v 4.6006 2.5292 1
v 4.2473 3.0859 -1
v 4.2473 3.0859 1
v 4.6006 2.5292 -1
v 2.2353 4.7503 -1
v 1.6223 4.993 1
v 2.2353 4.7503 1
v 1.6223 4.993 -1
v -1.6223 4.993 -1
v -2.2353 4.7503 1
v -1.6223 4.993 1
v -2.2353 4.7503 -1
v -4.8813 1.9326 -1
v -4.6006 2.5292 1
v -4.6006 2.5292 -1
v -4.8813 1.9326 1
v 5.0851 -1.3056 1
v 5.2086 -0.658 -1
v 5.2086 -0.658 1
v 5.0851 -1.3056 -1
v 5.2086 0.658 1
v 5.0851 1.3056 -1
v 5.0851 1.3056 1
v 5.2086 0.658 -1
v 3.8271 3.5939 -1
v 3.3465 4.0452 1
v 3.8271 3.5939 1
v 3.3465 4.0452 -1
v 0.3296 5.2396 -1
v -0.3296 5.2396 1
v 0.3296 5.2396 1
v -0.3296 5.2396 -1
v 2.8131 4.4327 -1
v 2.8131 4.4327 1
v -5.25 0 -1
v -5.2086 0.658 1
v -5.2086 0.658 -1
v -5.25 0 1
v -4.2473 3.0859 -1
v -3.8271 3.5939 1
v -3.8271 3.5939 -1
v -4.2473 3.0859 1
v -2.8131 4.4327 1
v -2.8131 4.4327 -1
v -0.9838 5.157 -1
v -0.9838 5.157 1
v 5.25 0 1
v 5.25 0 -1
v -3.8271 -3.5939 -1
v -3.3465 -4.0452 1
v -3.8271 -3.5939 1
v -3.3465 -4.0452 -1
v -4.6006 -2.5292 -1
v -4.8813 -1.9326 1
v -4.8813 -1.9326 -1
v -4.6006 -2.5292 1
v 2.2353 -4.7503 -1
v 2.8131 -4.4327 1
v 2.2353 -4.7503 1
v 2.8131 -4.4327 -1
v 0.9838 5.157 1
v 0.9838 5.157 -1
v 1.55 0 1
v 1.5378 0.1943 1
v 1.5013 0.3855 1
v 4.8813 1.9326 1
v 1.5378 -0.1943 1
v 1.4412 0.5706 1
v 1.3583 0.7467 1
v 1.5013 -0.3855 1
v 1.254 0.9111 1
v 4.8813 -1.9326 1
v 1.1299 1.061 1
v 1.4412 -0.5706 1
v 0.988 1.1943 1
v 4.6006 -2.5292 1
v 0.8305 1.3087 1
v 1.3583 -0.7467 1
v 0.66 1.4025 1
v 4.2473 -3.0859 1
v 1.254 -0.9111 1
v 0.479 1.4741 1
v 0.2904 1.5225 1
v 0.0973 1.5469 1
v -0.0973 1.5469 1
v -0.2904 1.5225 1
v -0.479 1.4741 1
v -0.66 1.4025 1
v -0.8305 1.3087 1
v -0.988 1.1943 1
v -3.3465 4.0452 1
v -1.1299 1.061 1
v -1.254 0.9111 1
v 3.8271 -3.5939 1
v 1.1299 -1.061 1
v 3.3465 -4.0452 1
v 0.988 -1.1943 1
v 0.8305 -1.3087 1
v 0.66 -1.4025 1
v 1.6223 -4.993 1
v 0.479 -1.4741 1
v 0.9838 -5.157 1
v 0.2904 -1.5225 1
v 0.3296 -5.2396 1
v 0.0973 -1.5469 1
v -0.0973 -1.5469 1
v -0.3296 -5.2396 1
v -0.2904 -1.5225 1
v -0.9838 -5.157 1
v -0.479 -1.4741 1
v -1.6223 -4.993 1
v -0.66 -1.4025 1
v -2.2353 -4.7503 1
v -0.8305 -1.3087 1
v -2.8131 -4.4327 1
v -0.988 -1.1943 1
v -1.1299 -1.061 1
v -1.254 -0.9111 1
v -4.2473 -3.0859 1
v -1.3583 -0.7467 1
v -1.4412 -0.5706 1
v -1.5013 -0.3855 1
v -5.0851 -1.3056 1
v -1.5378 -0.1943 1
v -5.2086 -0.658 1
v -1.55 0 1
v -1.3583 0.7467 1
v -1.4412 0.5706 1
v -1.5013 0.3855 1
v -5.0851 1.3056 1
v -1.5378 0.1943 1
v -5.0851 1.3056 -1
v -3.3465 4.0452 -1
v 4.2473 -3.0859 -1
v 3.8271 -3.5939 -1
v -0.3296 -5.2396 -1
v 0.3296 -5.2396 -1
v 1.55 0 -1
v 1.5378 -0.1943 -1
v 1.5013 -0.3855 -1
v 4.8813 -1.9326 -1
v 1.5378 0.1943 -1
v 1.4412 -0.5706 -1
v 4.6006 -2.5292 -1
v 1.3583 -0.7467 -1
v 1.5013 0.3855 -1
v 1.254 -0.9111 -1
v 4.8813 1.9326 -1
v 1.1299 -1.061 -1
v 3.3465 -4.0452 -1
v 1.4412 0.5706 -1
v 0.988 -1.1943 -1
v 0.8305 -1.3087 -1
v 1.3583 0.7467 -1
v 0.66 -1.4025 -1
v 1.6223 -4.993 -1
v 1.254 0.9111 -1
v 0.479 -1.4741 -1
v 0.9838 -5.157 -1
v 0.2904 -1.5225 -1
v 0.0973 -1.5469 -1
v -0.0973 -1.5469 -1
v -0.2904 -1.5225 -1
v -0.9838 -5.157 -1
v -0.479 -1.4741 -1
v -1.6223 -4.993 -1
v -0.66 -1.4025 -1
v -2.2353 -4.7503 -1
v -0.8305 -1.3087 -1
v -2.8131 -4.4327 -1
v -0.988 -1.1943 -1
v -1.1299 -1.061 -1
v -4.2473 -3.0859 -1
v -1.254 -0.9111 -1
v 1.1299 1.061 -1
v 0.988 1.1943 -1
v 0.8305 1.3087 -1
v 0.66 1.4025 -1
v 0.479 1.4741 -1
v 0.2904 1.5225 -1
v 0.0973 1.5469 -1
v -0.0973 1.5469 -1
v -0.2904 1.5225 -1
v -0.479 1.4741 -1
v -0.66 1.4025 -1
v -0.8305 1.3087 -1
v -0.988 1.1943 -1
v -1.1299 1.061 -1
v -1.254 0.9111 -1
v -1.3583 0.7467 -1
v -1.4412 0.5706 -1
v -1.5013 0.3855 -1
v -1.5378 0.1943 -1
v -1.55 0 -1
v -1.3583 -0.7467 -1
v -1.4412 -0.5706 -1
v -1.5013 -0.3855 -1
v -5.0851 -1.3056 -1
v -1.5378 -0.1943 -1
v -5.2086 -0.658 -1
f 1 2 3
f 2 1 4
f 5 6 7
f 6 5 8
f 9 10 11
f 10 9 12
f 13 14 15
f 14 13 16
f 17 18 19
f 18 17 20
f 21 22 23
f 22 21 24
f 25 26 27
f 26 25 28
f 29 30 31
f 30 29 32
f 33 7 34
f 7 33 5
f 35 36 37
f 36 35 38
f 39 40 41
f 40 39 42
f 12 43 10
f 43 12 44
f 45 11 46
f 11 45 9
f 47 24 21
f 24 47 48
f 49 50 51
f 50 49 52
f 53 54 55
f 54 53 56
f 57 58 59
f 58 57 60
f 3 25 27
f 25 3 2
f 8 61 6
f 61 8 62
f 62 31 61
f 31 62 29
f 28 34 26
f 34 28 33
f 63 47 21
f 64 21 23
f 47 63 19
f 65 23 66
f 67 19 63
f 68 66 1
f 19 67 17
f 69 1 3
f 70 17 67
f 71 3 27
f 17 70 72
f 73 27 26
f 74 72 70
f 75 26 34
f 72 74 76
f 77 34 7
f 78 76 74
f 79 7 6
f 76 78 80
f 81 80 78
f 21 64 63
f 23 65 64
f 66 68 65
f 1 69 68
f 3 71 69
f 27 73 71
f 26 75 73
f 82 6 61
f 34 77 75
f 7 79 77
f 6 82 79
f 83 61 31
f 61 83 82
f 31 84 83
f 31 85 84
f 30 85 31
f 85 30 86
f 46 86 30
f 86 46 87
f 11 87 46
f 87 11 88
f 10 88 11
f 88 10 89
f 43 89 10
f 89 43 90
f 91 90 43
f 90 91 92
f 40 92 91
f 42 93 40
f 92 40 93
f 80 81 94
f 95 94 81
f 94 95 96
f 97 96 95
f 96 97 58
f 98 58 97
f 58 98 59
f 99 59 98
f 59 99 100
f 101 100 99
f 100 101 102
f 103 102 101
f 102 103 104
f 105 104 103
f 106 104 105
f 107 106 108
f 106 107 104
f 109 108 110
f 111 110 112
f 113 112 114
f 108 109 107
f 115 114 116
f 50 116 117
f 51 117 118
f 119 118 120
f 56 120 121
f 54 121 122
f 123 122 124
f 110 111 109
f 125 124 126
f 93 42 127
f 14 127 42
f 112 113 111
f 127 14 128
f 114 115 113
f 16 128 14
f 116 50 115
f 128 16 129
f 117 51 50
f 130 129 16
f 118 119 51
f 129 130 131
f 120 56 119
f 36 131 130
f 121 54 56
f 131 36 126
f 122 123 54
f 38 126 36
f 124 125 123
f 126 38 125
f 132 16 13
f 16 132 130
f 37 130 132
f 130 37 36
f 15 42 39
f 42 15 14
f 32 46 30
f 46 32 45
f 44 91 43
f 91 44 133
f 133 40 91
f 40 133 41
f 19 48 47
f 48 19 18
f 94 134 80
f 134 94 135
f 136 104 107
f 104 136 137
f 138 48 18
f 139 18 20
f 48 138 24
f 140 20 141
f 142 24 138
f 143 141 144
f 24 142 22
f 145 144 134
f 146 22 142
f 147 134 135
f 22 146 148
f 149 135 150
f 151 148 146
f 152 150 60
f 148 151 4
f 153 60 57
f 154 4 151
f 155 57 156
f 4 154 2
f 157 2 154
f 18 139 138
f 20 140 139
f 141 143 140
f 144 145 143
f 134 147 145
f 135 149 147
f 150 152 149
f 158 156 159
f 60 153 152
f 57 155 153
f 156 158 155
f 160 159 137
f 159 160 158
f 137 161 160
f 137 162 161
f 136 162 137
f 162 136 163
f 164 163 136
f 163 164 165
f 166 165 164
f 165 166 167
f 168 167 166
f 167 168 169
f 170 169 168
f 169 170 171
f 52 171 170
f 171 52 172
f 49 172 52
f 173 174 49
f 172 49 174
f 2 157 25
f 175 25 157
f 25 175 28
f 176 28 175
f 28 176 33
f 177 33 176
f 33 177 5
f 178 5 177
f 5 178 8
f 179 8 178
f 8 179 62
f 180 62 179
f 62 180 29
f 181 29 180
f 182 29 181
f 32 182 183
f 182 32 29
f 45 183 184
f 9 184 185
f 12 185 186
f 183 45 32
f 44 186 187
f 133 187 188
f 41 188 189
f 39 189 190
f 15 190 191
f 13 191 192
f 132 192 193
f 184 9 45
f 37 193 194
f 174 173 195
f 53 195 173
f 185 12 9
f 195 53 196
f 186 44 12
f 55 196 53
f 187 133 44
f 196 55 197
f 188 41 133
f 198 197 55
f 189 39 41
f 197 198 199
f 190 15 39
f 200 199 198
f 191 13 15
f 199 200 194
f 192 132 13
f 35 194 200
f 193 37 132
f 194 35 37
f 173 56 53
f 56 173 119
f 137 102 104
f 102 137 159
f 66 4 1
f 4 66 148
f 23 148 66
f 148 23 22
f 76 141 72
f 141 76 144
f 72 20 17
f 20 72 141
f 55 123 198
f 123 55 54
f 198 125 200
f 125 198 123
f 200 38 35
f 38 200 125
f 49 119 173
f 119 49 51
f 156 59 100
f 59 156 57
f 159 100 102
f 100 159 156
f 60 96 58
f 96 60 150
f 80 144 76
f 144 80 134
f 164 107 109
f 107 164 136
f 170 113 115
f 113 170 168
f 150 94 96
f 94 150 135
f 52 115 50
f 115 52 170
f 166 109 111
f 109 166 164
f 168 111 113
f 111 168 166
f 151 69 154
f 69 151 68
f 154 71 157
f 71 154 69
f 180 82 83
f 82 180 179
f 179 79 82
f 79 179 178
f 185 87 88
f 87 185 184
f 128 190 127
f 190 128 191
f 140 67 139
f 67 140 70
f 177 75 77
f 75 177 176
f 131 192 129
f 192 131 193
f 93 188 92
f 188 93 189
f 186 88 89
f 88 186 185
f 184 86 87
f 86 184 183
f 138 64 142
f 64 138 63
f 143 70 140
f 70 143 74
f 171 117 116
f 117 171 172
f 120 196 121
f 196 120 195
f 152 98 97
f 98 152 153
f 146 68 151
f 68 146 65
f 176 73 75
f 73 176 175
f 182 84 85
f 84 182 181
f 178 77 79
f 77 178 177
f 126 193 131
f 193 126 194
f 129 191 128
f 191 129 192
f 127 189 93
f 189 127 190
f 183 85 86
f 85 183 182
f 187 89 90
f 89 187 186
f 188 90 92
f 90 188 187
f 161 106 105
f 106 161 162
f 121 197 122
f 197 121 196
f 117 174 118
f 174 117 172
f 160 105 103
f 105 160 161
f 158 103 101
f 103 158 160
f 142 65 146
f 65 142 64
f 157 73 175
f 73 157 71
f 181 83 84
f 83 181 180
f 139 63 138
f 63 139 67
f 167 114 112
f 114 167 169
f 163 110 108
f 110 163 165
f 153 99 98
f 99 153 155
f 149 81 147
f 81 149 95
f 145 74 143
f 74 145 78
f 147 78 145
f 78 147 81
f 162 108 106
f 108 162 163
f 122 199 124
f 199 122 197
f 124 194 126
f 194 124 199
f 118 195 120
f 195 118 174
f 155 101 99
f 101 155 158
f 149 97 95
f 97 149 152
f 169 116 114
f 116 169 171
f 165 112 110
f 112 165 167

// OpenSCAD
$fn = 50;


difference() {
	union() {
		translate(v = [0, 0, -1.0000000000]) {
			cylinder(h = 2, r = 5.2500000000);
		}
	}
	union() {
		translate(v = [0, 0, -100.0000000000]) {
			cylinder(h = 200, r = 1.5500000000);
		}
	}
}
